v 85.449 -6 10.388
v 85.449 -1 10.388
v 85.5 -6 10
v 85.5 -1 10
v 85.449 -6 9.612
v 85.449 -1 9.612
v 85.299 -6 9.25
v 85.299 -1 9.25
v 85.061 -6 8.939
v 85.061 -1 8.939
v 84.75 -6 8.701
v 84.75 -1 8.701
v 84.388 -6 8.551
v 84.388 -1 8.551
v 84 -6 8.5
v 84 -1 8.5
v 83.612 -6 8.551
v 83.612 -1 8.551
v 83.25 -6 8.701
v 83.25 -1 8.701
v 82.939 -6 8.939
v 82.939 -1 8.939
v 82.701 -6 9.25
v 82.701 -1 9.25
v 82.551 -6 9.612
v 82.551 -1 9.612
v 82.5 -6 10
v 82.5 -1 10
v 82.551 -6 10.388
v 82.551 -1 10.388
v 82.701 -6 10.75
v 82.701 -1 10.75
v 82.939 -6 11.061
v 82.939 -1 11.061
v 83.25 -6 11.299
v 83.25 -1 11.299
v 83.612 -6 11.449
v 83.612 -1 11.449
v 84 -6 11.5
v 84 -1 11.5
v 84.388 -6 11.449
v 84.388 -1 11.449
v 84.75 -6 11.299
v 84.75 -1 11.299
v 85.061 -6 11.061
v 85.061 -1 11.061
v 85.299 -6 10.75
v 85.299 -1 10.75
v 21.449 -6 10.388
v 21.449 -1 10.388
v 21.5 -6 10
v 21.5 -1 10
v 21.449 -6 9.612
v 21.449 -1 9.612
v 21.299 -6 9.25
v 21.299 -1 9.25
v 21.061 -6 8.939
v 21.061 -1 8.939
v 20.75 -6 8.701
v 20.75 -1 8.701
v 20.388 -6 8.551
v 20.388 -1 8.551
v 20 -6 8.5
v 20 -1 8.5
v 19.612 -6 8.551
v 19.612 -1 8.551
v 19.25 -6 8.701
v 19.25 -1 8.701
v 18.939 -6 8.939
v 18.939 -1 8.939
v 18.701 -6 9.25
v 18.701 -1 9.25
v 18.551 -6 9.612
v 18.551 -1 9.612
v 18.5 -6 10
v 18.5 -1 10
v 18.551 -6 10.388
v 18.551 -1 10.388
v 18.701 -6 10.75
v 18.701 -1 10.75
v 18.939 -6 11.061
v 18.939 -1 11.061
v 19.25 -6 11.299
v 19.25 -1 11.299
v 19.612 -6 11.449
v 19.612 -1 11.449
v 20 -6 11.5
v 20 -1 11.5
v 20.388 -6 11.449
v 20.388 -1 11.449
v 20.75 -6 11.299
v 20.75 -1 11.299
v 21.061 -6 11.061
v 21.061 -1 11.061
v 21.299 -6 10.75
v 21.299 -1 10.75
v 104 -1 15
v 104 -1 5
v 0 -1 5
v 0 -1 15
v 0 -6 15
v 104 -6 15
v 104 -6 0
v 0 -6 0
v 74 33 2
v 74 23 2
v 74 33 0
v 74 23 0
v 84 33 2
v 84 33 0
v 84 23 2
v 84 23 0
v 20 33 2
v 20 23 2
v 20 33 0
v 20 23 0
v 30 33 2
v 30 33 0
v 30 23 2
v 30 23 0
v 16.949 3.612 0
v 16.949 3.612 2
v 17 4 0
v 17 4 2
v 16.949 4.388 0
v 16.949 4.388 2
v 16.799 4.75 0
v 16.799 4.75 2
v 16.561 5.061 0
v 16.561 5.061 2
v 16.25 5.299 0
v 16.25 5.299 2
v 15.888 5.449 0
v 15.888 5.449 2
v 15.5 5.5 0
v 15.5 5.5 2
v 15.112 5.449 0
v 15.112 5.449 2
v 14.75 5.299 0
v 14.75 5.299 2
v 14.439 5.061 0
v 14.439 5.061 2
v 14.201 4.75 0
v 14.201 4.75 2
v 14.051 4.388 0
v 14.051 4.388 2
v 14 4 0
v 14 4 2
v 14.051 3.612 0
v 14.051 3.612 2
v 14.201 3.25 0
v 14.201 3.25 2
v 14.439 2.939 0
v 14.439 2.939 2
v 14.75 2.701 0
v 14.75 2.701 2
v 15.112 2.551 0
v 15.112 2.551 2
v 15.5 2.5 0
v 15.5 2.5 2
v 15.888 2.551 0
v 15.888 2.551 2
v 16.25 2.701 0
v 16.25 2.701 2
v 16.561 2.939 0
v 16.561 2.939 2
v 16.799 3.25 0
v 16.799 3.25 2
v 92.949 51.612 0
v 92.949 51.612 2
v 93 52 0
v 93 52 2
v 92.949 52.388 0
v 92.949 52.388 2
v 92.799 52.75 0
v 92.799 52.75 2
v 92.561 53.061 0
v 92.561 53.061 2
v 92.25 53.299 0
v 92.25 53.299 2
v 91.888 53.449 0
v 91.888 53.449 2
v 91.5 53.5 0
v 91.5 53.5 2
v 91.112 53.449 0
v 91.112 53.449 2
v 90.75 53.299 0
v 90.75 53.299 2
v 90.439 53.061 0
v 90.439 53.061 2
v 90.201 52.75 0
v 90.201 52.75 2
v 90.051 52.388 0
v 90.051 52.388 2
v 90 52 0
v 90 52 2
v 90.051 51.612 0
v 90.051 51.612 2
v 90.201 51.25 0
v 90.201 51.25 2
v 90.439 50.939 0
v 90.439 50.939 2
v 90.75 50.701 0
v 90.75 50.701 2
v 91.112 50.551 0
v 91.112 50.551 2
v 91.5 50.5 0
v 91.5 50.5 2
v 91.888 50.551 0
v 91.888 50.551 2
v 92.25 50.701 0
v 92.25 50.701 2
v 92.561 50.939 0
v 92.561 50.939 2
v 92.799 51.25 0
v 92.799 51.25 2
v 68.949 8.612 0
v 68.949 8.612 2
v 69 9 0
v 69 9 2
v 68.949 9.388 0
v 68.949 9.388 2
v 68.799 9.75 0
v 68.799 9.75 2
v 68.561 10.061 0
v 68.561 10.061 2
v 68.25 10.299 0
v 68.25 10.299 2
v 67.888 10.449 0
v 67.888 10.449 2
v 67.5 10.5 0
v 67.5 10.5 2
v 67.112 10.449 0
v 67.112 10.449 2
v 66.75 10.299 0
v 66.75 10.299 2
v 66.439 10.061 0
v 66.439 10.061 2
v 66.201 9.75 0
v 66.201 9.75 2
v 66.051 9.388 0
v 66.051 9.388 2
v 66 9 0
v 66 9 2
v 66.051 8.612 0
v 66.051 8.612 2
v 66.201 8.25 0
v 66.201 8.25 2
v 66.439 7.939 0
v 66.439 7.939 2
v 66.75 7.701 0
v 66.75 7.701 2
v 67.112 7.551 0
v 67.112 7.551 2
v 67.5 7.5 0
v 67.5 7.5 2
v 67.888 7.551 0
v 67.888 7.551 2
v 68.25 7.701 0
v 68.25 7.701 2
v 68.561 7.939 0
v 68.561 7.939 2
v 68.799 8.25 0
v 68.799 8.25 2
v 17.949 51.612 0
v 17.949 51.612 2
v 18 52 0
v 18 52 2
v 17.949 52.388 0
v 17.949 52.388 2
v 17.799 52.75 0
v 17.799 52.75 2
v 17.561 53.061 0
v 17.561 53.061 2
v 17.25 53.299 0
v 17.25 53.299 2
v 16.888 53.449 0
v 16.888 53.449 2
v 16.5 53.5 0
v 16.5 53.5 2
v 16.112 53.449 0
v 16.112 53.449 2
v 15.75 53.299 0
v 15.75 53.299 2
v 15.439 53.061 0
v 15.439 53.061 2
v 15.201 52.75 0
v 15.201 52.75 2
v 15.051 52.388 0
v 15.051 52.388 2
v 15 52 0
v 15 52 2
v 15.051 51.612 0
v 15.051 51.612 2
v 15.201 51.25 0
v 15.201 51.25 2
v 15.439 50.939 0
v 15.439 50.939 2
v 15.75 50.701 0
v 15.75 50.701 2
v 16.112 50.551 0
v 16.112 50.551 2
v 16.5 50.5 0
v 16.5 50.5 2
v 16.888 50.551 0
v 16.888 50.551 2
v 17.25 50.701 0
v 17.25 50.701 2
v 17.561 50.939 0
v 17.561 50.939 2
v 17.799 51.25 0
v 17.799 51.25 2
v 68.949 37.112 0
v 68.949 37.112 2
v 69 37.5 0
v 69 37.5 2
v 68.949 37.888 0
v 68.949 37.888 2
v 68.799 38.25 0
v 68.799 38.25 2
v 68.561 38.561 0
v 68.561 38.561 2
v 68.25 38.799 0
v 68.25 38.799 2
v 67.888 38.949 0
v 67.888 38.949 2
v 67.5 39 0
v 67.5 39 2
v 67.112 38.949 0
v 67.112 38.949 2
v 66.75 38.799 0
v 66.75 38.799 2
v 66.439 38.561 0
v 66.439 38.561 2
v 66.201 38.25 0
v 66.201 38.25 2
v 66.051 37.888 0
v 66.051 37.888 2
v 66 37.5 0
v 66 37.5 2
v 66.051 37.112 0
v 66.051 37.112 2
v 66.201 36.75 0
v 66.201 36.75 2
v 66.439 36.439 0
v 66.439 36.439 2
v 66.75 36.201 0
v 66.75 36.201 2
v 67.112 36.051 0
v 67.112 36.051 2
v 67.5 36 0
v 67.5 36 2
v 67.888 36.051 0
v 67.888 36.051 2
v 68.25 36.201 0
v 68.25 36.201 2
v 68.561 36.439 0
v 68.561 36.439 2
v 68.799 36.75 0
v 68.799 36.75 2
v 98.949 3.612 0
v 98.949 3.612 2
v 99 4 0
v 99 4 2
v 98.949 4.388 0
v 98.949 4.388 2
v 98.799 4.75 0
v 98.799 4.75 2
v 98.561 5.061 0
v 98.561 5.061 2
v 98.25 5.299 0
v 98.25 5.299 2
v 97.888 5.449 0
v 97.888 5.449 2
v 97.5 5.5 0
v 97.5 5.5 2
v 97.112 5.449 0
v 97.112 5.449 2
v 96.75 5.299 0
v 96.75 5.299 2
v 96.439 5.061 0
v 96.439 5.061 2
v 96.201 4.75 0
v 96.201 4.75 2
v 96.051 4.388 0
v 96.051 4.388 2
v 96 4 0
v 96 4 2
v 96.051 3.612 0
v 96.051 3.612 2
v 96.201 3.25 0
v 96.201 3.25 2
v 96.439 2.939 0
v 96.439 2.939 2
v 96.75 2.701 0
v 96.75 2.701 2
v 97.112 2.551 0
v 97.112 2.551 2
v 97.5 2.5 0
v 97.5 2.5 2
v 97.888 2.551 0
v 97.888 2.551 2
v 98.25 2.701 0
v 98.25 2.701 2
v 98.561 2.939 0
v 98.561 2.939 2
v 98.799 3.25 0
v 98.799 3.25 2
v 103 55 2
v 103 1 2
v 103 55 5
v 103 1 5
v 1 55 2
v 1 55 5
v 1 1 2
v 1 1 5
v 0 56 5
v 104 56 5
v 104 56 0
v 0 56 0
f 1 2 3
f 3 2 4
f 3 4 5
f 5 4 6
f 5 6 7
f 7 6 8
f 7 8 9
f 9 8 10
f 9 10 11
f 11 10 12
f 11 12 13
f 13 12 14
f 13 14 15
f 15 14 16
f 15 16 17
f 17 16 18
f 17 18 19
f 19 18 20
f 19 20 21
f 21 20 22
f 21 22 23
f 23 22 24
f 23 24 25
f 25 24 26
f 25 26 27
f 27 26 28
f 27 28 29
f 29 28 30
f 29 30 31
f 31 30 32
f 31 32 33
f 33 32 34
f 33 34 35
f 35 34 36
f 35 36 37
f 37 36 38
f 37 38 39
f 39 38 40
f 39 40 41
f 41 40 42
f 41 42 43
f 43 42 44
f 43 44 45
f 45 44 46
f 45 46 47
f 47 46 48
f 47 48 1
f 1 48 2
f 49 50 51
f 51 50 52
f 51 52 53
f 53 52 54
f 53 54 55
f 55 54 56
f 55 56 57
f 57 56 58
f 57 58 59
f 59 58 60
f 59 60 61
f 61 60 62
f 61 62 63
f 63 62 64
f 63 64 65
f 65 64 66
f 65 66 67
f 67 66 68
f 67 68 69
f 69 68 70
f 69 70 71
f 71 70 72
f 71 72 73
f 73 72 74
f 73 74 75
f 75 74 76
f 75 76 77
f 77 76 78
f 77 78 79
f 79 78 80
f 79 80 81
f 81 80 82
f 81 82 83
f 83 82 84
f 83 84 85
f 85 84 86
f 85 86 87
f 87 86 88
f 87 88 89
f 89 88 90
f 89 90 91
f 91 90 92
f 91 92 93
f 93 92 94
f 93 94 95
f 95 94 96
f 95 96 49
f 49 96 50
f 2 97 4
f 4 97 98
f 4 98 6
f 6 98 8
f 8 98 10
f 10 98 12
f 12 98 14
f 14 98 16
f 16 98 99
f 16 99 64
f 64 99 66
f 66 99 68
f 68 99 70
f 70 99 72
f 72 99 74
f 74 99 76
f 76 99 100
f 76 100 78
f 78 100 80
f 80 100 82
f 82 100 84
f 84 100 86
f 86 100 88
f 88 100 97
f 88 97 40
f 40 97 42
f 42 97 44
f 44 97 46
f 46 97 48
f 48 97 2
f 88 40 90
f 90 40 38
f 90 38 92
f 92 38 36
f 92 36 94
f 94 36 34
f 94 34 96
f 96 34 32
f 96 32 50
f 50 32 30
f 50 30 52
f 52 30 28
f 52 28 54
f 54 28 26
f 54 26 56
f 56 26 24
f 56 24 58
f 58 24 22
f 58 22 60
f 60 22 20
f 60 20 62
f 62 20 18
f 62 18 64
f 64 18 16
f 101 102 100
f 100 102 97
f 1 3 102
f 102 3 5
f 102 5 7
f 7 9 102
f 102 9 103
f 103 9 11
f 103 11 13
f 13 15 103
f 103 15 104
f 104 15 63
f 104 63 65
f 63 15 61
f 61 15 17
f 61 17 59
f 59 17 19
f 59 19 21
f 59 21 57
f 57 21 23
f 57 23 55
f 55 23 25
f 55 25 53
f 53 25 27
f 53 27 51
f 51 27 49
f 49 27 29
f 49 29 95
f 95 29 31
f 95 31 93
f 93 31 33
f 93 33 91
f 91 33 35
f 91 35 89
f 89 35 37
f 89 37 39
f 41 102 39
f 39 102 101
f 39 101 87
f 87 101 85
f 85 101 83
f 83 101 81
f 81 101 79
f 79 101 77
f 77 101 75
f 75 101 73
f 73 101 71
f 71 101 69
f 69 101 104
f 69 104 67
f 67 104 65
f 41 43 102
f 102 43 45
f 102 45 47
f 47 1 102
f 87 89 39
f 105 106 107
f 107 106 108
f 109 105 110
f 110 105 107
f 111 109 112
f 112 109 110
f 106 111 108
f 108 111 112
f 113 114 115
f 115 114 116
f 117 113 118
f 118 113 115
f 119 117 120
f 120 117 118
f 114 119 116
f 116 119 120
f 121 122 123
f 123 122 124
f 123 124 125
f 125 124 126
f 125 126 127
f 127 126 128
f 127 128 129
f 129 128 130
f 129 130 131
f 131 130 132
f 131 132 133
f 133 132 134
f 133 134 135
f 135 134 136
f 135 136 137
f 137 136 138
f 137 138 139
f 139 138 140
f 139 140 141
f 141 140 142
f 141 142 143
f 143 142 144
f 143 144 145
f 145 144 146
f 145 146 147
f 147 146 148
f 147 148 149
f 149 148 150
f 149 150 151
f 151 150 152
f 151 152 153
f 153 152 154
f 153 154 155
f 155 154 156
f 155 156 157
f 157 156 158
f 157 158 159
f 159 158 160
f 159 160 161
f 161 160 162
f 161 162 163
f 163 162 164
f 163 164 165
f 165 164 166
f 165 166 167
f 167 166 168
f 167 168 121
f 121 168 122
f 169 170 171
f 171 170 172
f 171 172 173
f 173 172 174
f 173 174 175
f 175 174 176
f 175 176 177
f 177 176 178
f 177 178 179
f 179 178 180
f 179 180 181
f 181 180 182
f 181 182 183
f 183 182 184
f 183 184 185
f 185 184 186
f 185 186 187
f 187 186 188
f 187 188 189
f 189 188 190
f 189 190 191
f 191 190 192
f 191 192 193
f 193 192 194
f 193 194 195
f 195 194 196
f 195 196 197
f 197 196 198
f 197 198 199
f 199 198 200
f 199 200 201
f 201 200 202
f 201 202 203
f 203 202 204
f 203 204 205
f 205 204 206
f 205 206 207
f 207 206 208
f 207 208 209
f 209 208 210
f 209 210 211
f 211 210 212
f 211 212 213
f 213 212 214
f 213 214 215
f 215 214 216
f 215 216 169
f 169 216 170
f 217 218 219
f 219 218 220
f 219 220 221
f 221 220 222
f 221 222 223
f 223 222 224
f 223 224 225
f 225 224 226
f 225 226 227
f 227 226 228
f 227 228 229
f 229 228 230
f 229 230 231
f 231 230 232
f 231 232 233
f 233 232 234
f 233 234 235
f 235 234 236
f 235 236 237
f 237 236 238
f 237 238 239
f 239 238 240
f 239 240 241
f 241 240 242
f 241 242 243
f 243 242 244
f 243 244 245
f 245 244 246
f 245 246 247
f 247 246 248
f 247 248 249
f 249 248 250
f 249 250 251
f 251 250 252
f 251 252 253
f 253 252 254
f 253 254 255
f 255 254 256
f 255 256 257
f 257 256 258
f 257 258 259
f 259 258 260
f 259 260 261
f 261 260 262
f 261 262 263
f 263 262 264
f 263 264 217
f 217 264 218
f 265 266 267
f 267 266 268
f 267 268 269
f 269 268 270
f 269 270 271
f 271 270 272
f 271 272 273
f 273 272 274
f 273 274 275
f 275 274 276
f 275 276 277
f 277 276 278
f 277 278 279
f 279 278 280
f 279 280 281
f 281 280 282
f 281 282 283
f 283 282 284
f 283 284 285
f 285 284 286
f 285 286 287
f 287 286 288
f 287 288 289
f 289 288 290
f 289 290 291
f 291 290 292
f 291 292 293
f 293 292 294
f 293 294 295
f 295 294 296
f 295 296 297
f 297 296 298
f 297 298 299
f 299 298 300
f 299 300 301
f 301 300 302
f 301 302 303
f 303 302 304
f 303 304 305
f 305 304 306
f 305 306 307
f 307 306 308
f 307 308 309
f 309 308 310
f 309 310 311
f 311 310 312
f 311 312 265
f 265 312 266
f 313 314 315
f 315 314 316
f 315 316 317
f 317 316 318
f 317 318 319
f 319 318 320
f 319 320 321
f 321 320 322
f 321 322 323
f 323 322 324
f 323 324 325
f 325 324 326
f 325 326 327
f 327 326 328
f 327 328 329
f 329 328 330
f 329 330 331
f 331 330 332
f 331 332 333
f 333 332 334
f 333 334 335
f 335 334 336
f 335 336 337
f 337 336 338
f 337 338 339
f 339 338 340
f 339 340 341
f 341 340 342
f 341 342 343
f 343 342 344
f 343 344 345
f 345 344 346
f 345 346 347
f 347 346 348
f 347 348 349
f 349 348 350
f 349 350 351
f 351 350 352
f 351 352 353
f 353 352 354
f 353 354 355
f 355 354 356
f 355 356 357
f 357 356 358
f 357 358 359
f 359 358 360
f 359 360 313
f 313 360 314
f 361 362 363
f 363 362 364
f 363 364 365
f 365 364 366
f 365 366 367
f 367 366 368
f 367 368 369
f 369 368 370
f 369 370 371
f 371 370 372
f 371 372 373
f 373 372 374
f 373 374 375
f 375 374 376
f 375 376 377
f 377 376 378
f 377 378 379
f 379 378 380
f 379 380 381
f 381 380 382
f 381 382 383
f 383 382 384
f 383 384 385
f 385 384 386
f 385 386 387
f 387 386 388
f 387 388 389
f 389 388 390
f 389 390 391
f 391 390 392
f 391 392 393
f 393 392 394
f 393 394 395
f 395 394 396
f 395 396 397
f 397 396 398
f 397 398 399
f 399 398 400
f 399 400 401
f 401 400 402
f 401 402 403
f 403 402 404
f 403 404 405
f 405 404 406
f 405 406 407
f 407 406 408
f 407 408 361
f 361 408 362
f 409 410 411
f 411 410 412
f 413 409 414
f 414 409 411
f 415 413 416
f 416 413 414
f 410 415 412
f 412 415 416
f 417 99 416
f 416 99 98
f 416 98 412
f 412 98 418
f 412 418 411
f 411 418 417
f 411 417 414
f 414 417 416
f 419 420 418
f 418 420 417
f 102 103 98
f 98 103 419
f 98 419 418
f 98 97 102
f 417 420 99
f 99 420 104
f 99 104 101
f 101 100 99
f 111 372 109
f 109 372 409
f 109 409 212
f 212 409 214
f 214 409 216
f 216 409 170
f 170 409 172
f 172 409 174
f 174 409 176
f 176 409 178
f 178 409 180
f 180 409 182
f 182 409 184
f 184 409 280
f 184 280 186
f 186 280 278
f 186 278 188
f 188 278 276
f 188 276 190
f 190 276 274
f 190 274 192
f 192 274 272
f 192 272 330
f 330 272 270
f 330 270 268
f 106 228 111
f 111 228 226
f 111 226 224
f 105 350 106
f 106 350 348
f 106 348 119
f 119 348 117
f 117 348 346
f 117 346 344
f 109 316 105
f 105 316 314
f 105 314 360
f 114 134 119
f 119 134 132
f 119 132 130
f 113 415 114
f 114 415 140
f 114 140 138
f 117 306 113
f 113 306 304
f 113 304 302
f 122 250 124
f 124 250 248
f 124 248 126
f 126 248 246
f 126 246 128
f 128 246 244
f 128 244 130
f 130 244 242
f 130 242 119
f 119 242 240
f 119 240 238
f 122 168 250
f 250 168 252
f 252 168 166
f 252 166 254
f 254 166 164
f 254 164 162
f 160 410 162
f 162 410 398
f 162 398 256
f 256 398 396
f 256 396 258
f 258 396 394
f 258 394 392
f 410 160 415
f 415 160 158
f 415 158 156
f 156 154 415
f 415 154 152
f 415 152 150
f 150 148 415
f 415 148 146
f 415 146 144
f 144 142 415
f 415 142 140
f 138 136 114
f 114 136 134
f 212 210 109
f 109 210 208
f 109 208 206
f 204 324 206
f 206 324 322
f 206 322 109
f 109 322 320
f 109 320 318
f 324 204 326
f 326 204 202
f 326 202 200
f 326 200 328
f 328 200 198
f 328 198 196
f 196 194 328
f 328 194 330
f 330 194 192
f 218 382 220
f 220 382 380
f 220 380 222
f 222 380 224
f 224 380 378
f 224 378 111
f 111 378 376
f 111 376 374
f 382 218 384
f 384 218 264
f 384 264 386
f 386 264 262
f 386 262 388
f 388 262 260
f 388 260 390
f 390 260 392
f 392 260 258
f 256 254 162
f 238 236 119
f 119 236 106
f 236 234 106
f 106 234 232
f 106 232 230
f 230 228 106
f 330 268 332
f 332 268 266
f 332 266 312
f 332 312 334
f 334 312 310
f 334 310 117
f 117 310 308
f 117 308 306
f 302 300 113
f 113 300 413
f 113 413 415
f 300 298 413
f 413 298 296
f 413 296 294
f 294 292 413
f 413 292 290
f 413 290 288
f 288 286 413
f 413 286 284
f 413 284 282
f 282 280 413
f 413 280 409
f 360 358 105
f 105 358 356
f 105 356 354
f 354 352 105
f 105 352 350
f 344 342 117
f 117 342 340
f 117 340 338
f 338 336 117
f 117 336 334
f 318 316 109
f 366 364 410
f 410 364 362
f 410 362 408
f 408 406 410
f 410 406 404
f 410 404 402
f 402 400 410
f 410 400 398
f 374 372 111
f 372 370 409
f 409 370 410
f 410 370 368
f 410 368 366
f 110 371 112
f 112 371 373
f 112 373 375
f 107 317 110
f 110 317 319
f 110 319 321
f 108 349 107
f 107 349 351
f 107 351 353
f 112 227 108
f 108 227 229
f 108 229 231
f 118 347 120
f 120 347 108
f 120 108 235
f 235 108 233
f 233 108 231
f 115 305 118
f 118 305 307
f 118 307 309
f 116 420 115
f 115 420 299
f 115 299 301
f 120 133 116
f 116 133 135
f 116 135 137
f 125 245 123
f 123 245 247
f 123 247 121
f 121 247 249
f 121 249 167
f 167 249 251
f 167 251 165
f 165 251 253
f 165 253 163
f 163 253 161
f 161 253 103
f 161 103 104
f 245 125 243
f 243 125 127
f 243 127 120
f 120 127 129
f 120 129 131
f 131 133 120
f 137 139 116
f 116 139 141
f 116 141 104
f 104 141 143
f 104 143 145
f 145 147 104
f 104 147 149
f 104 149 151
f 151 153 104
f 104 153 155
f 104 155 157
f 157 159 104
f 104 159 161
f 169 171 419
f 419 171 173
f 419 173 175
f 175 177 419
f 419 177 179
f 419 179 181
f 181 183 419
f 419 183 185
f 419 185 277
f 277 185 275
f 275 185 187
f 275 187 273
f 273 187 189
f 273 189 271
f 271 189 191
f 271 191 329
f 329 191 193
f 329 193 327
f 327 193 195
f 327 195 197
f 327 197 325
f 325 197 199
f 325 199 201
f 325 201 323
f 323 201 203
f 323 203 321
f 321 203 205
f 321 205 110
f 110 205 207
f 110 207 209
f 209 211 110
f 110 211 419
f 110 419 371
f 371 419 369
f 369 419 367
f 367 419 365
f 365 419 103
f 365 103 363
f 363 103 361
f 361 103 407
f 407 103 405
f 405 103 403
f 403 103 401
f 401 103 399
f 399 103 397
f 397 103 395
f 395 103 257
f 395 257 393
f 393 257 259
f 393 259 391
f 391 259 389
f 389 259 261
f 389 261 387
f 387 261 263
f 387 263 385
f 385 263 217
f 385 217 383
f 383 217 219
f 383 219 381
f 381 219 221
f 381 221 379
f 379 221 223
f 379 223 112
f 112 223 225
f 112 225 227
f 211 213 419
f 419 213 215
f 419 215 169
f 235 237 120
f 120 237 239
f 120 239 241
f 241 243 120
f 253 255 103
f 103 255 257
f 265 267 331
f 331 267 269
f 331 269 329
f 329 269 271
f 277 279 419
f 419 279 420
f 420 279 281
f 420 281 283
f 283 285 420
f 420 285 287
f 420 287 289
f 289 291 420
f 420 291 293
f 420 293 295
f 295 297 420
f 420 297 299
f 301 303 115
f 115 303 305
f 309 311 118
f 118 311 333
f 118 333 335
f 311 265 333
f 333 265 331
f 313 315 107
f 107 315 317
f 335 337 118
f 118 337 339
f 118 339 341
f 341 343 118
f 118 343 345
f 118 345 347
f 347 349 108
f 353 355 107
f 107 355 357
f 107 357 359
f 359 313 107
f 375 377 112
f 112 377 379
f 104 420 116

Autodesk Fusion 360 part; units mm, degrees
sketch "Esquisse2" plane through (0, 0, 0) normal (0, 0, 1) x (1, 0, 0)
  line L0 (0, 0) -> (104, 0)
  line L1 (104, 0) -> (104, 56)
  line L2 (104, 56) -> (0, 56)
  line L3 (0, 56) -> (0, 0)
  dimension "d1" = 104
  dimension "d2" = 56
extrude "Extrusion1" add sketch "Esquisse2" along normal blind 2
sketch "Esquisse3" plane through (0, 0, 2) normal (0, 0, 1) x (-1, 0, 0)
  line L0 (0, -56) -> (0, 0)
  line L1 (0, 0) -> (-104, 0)
  line L2 (-104, 0) -> (-104, -56)
  line L3 (-104, -56) -> (0, -56)
  line L4 (0, -56) -> (-104, -56)
  line L5 (-104, -56) -> (-104, 0)
  line L6 (-104, 0) -> (0, 0)
  line L7 (0, 0) -> (0, -56)
  line L8 (-1, -55) -> (-103, -55)
  line L9 (-103, -55) -> (-103, -1)
  line L10 (-103, -1) -> (-1, -1)
  line L11 (-1, -1) -> (-1, -55)
  dimension "d5" = 1
  dimension "d6" = 1
  dimension "d7" = 1
  dimension "d8" = 1
extrude "Extrusion2" add sketch "Esquisse3" along normal blind 3
sketch "Esquisse4" plane through (0, 0, 2) normal (0, 0, 1) x (-1, 0, 0)
  line L0 (-103, -1) -> (-103, -55)
  line L1 (-103, -55) -> (-1, -55)
  line L2 (-1, -55) -> (-1, -1)
  line L3 (-1, -1) -> (-103, -1)
  circle A0 centre (-16.5, -52) radius 1.5
  circle A1 centre (-15.5, -4) radius 1.5
  circle A2 centre (-67.5, -37.5) radius 1.5
  circle A3 centre (-67.5, -9) radius 1.5
  circle A4 centre (-91.5, -52) radius 1.5
  circle A5 centre (-97.5, -4) radius 1.5
  dimension "d11" = 3
  dimension "d12" = 3
  dimension "d13" = 3
  dimension "d14" = 3
  dimension "d15" = 3
  dimension "d16" = 3
  dimension "d17" = 3
  dimension "d18" = 15.5
  dimension "d19" = 3
  dimension "d20" = 14.5
  dimension "d21" = 35.5
  dimension "d22" = 17.5
  dimension "d23" = 35.5
  dimension "d24" = 8
  dimension "d25" = 11.5
  dimension "d26" = 3
  dimension "d27" = 3
  dimension "d28" = 5.5
extrude "Extrusion3" cut sketch "Esquisse4" against normal blind 5 contours A0 | A1 | A2 | A3 | A4 | A5
sketch "Esquisse6" plane through (0, 0, 0) normal (0, 0, -1) x (1, 0, 0)
  circle A0 centre (15.5, -4) radius 1.5
  circle A1 centre (91.5, -52) radius 1.5
  circle A2 centre (67.5, -9) radius 1.5
  circle A3 centre (16.5, -52) radius 1.5
  circle A4 centre (67.5, -37.5) radius 1.5
  circle A5 centre (97.5, -4) radius 1.5
  line L0 (0, 0) -> (0, -56)
  line L1 (0, -56) -> (104, -56)
  line L2 (104, -56) -> (104, 0)
  line L3 (104, 0) -> (0, 0)
  line L4 (20, -23) -> (30, -23)
  line L5 (30, -23) -> (30, -33)
  line L6 (30, -33) -> (20, -33)
  line L7 (20, -33) -> (20, -23)
  line L8 (74, -23) -> (84, -23)
  line L9 (84, -23) -> (84, -33)
  line L10 (84, -33) -> (74, -33)
  line L11 (74, -33) -> (74, -23)
  dimension "d34" = 10
  dimension "d35" = 10
  dimension "d36" = 10
  dimension "d37" = 10
  dimension "d38" = 20
  dimension "d39" = 23
  dimension "d40" = 23
  dimension "d41" = 20
extrude "Extrusion4" cut sketch "Esquisse6" against normal blind 5 contours L4 L5 L6 L7 | L8 L9 L10 L11
sketch "Esquisse7" plane through (0, 0, 0) normal (0, -1, 0) x (1, 0, 0)
  line L0 (0, 0) -> (104, 0)
  line L1 (104, 0) -> (104, 5)
  line L2 (104, 5) -> (0, 5)
  line L3 (0, 5) -> (0, 0)
  line L4 (0, 0) -> (104, 0)
  line L5 (104, 0) -> (104, 5)
  line L6 (104, 5) -> (0, 5)
  line L7 (0, 5) -> (0, 0)
extrude "Extrusion5" add sketch "Esquisse7" along normal blind 6
sketch "Esquisse8" plane through (0, 0, 5) normal (0, 0, 1) x (-1, 0, 0)
  line L0 (-103, -1) -> (-1, -1)
  line L1 (-1, -1) -> (-1, -55)
  line L2 (-1, -55) -> (-103, -55)
  line L3 (-103, -55) -> (-103, -1)
  line L4 (-104, 6) -> (-104, -56)
  line L5 (-104, -56) -> (0, -56)
  line L6 (0, -56) -> (0, 6)
  line L7 (0, 6) -> (-104, 6)
  line L8 (0, 6) -> (-104, 6)
  line L9 (-104, 6) -> (-104, 1)
  line L10 (-104, 1) -> (0, 1)
  line L11 (0, 1) -> (0, 6)
  dimension "d46" = 5
extrude "Extrusion6" add sketch "Esquisse8" along normal blind 10 contours L4 L6 L7 L8 L9 L10 L11
sketch "Esquisse9" plane through (0, -1, 0) normal (0, 1, 0) x (-1, 0, 0)
  line L0 (-104, 5) -> (0, 5)
  line L1 (0, 5) -> (0, 15)
  line L2 (0, 15) -> (-104, 15)
  line L3 (-104, 15) -> (-104, 5)
  circle A0 centre (-20, 10) radius 1.5
  circle A1 centre (-84, 10) radius 1.5
  dimension "d49" = 3
  dimension "d50" = 3
  dimension "d51" = 20
  dimension "d52" = 20
  dimension "d53" = 5
  dimension "d54" = 5
extrude "Extrusion7" cut sketch "Esquisse9" against normal blind 5 contours A0 | A1
